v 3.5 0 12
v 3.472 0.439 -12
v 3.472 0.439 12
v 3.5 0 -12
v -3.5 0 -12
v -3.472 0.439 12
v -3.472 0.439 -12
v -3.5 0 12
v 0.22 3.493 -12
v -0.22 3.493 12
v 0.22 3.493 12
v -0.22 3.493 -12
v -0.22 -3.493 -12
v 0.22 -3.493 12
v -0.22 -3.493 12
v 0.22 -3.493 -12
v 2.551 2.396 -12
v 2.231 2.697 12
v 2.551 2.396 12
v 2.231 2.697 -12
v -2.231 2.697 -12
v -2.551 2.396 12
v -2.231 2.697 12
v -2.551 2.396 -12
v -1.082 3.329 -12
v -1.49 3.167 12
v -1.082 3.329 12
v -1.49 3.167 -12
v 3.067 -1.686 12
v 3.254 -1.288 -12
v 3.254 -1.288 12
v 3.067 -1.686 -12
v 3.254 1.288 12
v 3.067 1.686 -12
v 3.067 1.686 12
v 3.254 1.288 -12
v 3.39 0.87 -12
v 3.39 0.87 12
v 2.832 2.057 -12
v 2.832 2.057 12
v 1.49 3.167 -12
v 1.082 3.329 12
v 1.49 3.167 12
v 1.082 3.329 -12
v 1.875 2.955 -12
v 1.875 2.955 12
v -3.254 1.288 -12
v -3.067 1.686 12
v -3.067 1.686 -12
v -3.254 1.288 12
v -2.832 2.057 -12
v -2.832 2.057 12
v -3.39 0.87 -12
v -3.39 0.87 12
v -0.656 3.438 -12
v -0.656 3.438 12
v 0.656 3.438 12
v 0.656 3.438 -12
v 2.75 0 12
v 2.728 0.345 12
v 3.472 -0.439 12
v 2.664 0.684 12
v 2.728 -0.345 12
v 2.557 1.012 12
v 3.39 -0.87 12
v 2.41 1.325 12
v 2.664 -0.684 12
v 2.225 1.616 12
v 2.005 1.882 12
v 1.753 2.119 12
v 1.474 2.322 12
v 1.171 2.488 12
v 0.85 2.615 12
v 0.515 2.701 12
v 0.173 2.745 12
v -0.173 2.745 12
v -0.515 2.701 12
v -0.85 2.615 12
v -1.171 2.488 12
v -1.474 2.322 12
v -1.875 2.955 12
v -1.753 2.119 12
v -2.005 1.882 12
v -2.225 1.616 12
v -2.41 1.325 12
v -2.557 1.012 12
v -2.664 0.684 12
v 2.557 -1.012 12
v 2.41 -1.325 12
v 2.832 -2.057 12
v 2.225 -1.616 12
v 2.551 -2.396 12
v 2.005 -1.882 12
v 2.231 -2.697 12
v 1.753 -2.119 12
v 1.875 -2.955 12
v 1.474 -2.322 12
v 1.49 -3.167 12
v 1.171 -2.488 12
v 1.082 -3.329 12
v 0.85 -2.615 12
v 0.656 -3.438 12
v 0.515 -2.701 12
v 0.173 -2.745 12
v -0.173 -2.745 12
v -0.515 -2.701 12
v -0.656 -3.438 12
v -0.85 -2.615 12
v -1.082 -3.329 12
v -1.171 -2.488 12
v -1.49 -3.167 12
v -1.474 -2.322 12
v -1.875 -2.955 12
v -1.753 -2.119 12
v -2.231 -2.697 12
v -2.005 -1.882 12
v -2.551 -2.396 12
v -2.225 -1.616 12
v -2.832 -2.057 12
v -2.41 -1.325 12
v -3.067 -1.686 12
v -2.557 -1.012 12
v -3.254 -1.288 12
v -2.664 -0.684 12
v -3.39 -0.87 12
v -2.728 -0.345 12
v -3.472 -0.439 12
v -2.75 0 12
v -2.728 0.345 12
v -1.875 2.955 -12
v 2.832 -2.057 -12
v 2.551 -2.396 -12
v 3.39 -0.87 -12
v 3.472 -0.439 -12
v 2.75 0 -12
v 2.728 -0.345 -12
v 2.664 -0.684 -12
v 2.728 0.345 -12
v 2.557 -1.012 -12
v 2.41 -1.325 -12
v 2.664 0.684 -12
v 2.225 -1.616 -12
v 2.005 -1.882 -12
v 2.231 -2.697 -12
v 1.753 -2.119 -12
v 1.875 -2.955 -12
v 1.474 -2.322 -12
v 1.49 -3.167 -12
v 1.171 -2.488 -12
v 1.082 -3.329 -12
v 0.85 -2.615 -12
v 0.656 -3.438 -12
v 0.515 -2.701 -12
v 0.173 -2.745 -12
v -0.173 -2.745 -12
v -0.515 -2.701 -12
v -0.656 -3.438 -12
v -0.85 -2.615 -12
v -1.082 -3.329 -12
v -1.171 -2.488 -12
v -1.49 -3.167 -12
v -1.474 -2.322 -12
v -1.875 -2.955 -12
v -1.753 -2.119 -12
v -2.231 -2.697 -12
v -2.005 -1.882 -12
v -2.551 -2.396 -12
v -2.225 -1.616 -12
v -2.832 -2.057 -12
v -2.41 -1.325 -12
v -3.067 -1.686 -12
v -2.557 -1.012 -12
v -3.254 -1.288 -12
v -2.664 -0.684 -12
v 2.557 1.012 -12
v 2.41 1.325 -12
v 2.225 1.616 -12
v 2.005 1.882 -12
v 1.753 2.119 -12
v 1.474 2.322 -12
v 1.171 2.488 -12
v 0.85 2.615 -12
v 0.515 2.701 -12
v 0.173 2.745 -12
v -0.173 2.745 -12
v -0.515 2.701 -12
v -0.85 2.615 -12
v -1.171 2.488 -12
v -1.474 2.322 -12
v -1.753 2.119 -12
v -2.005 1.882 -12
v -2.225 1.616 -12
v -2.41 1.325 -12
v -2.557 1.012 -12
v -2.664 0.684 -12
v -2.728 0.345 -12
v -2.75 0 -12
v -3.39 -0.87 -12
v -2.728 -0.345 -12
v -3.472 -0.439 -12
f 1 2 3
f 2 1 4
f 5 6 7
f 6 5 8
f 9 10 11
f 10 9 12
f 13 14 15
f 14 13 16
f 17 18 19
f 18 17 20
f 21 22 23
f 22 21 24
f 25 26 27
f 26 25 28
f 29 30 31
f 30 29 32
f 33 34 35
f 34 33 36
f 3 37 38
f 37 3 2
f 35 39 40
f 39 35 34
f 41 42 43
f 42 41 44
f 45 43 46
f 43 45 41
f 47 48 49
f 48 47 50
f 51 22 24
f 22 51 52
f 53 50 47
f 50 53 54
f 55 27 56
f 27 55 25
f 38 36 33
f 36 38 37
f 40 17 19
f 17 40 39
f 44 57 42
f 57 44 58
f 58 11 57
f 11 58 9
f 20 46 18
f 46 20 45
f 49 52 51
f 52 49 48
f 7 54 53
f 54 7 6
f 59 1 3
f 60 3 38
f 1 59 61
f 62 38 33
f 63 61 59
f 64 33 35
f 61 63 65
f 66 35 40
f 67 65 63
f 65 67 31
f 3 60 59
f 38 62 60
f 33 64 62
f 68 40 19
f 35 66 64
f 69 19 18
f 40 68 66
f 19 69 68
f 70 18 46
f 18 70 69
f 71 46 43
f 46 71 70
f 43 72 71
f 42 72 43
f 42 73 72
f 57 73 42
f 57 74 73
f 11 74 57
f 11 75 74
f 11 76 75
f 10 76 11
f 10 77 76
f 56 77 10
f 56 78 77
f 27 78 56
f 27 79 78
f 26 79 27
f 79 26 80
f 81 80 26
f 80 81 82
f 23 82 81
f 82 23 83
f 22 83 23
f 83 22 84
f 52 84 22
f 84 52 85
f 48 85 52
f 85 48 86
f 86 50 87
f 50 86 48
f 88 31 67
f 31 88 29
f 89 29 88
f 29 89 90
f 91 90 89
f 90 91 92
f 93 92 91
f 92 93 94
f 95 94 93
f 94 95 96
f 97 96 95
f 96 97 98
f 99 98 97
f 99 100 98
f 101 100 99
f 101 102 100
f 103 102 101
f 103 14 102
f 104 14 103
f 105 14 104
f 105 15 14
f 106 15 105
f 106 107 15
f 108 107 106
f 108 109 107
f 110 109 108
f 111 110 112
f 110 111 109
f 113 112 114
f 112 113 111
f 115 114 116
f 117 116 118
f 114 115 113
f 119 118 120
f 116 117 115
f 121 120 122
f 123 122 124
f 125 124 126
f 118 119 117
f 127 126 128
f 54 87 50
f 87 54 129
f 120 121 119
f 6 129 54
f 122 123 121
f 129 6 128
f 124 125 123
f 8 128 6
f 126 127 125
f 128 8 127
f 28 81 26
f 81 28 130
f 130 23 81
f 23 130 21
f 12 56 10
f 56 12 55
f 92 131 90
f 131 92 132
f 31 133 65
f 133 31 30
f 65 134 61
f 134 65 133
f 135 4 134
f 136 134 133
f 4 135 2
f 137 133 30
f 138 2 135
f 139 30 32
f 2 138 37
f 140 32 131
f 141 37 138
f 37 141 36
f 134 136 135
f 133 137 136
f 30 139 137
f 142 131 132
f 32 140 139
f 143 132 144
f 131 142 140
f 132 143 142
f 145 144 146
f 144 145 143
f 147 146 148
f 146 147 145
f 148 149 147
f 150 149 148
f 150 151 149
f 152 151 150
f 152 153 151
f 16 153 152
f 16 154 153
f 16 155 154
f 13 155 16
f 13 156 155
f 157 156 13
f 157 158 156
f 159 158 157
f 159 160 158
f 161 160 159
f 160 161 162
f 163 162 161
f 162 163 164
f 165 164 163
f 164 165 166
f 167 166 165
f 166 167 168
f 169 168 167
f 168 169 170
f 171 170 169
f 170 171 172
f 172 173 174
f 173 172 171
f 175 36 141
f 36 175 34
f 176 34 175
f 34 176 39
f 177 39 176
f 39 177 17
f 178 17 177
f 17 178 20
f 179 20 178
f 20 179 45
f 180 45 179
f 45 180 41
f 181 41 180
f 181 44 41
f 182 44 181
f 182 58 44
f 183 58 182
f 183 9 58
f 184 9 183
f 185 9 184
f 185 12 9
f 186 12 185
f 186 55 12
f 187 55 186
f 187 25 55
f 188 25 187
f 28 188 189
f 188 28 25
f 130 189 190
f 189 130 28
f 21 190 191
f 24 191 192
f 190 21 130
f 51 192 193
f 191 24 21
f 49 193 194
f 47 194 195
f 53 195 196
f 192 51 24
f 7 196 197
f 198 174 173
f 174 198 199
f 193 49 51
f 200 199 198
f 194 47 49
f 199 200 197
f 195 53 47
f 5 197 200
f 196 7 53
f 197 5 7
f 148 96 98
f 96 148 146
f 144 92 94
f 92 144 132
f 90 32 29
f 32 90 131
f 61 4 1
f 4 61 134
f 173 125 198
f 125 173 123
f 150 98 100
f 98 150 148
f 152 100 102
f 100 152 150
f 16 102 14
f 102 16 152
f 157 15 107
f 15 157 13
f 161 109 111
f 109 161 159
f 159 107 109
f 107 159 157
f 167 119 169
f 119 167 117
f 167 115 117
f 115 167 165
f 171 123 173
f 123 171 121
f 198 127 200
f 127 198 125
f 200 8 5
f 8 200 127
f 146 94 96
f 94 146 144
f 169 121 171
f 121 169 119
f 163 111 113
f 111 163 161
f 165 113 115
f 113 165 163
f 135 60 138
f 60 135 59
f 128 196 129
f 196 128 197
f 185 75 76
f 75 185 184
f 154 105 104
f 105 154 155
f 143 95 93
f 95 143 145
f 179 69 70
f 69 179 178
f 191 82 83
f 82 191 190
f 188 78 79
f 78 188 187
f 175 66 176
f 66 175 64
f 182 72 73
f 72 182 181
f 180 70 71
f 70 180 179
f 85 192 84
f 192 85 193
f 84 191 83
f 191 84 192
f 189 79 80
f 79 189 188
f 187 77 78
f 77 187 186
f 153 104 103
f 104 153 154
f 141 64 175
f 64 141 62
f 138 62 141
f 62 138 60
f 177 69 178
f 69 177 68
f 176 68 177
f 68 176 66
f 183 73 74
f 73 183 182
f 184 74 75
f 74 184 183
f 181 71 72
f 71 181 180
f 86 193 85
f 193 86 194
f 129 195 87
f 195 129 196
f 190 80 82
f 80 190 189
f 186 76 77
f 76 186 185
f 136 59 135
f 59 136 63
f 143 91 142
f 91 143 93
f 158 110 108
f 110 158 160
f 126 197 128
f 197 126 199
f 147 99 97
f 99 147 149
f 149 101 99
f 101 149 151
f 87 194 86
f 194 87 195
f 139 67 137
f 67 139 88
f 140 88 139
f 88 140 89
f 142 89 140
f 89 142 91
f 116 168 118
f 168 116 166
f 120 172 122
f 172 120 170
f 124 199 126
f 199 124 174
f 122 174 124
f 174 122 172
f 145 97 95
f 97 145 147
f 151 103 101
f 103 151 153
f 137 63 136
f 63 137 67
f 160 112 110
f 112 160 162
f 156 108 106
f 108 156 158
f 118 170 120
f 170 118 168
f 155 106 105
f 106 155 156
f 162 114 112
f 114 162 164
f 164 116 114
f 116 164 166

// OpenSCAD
$fn = 50;


difference() {
	union() {
		translate(v = [0, 0, -12.0000000000]) {
			cylinder(h = 24, r = 3.5000000000);
		}
	}
	union() {
		translate(v = [0, 0, -100.0000000000]) {
			cylinder(h = 200, r = 2.7500000000);
		}
	}
}
